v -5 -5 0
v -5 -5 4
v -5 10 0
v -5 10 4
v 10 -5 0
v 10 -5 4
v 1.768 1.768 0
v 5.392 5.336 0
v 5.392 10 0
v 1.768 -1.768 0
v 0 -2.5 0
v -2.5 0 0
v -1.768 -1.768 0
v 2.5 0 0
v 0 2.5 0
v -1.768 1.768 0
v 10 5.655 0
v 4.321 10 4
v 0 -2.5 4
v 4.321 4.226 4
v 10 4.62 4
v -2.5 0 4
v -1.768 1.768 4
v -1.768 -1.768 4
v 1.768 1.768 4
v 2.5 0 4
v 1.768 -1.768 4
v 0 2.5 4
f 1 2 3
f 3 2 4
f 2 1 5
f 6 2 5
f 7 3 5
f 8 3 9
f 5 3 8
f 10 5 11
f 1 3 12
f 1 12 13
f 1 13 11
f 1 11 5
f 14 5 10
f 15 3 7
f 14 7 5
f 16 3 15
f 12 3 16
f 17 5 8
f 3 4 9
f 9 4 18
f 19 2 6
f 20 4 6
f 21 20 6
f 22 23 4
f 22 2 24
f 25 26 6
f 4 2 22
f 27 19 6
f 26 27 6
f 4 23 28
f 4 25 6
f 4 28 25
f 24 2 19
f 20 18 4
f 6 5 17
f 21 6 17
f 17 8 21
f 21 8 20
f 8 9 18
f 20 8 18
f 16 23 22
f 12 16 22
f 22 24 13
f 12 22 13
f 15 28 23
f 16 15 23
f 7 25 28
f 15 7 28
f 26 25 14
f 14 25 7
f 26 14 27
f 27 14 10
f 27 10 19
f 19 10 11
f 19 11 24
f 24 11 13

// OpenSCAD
difference(){
translate([209-214,209-214,0]) cube([15,15,4]);

translate([0,0,-1])cylinder(r=2.5,h=10);


translate([209-214,209-214,-1]) translate([12,12,-5]) rotate([15,-15,0])cube([15,15,12]);
}
